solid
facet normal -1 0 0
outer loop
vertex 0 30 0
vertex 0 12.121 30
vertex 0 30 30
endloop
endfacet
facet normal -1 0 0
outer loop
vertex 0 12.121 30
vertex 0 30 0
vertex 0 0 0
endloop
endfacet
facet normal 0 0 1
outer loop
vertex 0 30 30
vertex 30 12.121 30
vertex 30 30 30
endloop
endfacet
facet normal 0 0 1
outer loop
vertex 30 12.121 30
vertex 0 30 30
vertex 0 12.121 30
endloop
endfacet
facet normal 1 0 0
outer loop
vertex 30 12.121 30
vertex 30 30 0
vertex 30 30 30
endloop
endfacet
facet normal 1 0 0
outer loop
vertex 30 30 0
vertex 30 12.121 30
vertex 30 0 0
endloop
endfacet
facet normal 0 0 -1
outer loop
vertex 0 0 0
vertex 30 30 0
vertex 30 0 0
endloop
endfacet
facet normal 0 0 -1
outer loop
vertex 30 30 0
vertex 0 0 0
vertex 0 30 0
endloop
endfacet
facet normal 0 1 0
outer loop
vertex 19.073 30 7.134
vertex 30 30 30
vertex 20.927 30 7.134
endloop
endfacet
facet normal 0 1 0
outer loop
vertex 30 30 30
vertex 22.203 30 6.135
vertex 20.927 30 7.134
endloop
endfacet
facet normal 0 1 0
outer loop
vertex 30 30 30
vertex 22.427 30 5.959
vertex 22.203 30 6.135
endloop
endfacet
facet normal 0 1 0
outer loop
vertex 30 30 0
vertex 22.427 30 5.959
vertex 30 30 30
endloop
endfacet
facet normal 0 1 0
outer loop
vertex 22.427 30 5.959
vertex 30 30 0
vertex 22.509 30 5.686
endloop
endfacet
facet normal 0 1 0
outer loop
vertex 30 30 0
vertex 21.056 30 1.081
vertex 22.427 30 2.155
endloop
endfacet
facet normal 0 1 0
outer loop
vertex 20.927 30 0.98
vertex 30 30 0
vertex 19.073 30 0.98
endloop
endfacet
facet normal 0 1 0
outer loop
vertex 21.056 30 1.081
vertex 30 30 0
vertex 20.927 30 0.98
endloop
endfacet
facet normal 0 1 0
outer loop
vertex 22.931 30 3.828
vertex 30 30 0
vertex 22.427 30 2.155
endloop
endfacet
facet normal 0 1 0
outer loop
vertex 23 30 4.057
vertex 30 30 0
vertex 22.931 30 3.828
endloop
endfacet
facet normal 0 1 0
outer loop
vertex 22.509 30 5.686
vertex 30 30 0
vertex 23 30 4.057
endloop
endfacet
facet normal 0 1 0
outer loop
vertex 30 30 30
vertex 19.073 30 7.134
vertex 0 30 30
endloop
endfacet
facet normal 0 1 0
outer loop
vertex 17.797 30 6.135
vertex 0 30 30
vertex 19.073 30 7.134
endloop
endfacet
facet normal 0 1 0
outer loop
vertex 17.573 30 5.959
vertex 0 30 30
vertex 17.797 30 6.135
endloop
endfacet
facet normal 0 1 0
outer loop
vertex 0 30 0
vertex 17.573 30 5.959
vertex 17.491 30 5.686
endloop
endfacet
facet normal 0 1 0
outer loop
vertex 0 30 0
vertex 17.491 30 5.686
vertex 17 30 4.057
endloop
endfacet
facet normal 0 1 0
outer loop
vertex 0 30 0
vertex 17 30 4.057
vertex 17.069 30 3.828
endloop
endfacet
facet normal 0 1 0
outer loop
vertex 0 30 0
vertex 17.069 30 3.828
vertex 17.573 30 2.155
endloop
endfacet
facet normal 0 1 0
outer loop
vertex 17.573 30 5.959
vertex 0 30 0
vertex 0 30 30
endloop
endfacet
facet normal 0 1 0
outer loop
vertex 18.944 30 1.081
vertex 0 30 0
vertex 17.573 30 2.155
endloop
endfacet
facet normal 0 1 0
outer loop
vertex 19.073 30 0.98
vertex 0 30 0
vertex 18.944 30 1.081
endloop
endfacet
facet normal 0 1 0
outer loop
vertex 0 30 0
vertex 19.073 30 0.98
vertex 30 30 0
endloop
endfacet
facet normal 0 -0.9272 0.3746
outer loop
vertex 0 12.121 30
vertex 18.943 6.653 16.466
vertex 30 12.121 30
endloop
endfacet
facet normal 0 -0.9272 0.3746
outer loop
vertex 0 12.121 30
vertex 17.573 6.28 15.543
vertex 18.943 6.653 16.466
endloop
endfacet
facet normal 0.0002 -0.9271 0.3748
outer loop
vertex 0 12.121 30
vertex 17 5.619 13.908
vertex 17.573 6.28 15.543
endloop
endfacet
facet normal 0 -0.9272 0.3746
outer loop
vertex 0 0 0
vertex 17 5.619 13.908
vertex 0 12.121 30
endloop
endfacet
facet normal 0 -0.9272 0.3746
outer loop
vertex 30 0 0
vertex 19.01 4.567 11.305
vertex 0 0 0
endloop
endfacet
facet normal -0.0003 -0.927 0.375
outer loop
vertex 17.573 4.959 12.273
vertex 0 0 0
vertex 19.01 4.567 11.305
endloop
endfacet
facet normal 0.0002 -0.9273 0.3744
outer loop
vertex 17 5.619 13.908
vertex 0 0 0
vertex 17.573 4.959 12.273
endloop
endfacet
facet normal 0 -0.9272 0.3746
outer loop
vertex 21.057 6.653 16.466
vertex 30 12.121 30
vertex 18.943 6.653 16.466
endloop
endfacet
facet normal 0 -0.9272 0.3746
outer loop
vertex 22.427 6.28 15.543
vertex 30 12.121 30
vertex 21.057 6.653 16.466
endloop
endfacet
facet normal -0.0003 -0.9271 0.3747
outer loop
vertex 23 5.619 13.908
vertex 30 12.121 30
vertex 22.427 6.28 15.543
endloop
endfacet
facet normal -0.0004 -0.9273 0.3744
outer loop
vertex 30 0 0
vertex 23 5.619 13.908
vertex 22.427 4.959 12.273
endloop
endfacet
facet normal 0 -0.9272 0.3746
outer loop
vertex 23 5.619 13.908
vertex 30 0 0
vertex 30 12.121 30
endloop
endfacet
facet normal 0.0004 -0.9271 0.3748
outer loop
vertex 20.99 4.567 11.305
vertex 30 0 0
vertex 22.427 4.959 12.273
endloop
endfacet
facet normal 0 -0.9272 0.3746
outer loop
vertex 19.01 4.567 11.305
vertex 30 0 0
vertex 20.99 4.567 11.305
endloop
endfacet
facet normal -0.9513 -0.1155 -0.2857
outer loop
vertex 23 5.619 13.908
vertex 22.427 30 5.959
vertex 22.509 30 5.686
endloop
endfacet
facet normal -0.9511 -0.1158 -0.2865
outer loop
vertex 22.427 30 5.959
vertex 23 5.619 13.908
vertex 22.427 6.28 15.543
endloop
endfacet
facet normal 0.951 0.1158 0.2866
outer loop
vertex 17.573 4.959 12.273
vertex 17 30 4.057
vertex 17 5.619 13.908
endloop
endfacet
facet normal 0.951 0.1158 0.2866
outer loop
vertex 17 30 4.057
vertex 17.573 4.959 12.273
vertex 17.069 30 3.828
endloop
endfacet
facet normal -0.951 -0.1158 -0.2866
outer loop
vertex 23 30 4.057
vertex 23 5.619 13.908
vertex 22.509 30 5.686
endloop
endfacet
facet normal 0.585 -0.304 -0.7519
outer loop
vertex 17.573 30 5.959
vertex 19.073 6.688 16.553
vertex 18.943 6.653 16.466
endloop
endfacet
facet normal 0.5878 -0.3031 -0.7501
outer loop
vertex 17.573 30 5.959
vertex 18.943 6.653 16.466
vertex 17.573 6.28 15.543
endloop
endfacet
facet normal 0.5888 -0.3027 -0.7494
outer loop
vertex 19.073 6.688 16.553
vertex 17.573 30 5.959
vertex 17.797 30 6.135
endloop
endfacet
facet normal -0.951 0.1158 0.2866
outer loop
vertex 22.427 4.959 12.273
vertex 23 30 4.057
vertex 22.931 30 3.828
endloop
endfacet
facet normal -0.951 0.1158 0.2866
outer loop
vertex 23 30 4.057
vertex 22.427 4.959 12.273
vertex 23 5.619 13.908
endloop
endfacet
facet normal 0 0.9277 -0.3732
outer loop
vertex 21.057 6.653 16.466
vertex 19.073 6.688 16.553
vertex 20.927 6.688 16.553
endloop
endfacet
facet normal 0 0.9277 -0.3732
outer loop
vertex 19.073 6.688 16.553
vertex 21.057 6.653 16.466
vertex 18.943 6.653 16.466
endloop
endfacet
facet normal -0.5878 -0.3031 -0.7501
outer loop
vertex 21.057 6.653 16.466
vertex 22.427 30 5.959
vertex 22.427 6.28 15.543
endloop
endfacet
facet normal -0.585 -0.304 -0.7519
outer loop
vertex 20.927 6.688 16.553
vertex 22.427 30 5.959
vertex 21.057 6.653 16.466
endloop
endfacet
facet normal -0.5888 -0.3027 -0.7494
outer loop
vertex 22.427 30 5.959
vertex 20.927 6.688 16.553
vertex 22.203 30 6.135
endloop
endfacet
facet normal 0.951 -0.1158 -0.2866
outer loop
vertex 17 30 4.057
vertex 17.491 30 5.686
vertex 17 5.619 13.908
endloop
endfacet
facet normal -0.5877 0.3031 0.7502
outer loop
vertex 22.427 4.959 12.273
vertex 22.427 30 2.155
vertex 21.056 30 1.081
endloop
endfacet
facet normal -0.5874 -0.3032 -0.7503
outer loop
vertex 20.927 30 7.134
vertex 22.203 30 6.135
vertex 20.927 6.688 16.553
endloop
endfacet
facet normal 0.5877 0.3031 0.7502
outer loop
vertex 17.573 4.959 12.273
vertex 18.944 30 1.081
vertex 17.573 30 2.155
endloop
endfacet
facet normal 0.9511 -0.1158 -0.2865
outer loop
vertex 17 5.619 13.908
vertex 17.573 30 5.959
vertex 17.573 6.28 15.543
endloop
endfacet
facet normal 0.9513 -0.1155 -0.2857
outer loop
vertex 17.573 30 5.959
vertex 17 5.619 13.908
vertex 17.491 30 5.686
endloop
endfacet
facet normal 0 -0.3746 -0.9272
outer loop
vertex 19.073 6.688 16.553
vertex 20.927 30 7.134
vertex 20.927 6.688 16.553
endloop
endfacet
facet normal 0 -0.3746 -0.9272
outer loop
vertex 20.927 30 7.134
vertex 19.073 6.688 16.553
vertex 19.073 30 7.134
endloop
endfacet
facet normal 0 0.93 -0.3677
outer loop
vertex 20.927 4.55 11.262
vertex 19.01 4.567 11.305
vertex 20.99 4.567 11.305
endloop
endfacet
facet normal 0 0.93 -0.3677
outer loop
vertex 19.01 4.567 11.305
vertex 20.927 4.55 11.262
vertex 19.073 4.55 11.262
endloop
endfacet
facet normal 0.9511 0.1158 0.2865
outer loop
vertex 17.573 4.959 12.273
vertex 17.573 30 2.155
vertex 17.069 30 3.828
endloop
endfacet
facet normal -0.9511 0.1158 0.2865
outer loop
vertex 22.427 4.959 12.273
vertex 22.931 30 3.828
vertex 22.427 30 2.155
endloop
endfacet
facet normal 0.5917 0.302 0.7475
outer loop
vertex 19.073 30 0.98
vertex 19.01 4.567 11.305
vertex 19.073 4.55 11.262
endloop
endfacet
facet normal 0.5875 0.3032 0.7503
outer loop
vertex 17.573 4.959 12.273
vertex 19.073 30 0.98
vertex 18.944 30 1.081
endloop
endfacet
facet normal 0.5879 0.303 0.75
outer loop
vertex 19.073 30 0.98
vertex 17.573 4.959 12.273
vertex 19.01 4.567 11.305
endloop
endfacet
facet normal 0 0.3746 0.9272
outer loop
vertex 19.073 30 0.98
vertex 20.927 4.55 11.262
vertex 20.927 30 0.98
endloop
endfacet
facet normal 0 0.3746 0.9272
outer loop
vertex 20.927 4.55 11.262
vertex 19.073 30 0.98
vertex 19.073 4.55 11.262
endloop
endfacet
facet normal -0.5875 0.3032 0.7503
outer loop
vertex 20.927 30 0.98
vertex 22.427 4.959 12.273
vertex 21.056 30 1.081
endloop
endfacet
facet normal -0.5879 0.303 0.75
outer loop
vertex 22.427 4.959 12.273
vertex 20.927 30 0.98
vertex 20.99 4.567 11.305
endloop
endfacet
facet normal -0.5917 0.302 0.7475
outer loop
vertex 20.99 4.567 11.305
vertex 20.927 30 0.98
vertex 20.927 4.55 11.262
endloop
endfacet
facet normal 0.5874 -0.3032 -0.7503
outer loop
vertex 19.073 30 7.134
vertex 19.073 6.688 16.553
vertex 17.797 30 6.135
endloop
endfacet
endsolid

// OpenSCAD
difference() {
    cube([30,30,30]);
    rotate([68,0,0]) cube([30,40,30]);
    #rotate([68,0,0]) translate([20,15,-30]) cylinder(30,r=3);
}
